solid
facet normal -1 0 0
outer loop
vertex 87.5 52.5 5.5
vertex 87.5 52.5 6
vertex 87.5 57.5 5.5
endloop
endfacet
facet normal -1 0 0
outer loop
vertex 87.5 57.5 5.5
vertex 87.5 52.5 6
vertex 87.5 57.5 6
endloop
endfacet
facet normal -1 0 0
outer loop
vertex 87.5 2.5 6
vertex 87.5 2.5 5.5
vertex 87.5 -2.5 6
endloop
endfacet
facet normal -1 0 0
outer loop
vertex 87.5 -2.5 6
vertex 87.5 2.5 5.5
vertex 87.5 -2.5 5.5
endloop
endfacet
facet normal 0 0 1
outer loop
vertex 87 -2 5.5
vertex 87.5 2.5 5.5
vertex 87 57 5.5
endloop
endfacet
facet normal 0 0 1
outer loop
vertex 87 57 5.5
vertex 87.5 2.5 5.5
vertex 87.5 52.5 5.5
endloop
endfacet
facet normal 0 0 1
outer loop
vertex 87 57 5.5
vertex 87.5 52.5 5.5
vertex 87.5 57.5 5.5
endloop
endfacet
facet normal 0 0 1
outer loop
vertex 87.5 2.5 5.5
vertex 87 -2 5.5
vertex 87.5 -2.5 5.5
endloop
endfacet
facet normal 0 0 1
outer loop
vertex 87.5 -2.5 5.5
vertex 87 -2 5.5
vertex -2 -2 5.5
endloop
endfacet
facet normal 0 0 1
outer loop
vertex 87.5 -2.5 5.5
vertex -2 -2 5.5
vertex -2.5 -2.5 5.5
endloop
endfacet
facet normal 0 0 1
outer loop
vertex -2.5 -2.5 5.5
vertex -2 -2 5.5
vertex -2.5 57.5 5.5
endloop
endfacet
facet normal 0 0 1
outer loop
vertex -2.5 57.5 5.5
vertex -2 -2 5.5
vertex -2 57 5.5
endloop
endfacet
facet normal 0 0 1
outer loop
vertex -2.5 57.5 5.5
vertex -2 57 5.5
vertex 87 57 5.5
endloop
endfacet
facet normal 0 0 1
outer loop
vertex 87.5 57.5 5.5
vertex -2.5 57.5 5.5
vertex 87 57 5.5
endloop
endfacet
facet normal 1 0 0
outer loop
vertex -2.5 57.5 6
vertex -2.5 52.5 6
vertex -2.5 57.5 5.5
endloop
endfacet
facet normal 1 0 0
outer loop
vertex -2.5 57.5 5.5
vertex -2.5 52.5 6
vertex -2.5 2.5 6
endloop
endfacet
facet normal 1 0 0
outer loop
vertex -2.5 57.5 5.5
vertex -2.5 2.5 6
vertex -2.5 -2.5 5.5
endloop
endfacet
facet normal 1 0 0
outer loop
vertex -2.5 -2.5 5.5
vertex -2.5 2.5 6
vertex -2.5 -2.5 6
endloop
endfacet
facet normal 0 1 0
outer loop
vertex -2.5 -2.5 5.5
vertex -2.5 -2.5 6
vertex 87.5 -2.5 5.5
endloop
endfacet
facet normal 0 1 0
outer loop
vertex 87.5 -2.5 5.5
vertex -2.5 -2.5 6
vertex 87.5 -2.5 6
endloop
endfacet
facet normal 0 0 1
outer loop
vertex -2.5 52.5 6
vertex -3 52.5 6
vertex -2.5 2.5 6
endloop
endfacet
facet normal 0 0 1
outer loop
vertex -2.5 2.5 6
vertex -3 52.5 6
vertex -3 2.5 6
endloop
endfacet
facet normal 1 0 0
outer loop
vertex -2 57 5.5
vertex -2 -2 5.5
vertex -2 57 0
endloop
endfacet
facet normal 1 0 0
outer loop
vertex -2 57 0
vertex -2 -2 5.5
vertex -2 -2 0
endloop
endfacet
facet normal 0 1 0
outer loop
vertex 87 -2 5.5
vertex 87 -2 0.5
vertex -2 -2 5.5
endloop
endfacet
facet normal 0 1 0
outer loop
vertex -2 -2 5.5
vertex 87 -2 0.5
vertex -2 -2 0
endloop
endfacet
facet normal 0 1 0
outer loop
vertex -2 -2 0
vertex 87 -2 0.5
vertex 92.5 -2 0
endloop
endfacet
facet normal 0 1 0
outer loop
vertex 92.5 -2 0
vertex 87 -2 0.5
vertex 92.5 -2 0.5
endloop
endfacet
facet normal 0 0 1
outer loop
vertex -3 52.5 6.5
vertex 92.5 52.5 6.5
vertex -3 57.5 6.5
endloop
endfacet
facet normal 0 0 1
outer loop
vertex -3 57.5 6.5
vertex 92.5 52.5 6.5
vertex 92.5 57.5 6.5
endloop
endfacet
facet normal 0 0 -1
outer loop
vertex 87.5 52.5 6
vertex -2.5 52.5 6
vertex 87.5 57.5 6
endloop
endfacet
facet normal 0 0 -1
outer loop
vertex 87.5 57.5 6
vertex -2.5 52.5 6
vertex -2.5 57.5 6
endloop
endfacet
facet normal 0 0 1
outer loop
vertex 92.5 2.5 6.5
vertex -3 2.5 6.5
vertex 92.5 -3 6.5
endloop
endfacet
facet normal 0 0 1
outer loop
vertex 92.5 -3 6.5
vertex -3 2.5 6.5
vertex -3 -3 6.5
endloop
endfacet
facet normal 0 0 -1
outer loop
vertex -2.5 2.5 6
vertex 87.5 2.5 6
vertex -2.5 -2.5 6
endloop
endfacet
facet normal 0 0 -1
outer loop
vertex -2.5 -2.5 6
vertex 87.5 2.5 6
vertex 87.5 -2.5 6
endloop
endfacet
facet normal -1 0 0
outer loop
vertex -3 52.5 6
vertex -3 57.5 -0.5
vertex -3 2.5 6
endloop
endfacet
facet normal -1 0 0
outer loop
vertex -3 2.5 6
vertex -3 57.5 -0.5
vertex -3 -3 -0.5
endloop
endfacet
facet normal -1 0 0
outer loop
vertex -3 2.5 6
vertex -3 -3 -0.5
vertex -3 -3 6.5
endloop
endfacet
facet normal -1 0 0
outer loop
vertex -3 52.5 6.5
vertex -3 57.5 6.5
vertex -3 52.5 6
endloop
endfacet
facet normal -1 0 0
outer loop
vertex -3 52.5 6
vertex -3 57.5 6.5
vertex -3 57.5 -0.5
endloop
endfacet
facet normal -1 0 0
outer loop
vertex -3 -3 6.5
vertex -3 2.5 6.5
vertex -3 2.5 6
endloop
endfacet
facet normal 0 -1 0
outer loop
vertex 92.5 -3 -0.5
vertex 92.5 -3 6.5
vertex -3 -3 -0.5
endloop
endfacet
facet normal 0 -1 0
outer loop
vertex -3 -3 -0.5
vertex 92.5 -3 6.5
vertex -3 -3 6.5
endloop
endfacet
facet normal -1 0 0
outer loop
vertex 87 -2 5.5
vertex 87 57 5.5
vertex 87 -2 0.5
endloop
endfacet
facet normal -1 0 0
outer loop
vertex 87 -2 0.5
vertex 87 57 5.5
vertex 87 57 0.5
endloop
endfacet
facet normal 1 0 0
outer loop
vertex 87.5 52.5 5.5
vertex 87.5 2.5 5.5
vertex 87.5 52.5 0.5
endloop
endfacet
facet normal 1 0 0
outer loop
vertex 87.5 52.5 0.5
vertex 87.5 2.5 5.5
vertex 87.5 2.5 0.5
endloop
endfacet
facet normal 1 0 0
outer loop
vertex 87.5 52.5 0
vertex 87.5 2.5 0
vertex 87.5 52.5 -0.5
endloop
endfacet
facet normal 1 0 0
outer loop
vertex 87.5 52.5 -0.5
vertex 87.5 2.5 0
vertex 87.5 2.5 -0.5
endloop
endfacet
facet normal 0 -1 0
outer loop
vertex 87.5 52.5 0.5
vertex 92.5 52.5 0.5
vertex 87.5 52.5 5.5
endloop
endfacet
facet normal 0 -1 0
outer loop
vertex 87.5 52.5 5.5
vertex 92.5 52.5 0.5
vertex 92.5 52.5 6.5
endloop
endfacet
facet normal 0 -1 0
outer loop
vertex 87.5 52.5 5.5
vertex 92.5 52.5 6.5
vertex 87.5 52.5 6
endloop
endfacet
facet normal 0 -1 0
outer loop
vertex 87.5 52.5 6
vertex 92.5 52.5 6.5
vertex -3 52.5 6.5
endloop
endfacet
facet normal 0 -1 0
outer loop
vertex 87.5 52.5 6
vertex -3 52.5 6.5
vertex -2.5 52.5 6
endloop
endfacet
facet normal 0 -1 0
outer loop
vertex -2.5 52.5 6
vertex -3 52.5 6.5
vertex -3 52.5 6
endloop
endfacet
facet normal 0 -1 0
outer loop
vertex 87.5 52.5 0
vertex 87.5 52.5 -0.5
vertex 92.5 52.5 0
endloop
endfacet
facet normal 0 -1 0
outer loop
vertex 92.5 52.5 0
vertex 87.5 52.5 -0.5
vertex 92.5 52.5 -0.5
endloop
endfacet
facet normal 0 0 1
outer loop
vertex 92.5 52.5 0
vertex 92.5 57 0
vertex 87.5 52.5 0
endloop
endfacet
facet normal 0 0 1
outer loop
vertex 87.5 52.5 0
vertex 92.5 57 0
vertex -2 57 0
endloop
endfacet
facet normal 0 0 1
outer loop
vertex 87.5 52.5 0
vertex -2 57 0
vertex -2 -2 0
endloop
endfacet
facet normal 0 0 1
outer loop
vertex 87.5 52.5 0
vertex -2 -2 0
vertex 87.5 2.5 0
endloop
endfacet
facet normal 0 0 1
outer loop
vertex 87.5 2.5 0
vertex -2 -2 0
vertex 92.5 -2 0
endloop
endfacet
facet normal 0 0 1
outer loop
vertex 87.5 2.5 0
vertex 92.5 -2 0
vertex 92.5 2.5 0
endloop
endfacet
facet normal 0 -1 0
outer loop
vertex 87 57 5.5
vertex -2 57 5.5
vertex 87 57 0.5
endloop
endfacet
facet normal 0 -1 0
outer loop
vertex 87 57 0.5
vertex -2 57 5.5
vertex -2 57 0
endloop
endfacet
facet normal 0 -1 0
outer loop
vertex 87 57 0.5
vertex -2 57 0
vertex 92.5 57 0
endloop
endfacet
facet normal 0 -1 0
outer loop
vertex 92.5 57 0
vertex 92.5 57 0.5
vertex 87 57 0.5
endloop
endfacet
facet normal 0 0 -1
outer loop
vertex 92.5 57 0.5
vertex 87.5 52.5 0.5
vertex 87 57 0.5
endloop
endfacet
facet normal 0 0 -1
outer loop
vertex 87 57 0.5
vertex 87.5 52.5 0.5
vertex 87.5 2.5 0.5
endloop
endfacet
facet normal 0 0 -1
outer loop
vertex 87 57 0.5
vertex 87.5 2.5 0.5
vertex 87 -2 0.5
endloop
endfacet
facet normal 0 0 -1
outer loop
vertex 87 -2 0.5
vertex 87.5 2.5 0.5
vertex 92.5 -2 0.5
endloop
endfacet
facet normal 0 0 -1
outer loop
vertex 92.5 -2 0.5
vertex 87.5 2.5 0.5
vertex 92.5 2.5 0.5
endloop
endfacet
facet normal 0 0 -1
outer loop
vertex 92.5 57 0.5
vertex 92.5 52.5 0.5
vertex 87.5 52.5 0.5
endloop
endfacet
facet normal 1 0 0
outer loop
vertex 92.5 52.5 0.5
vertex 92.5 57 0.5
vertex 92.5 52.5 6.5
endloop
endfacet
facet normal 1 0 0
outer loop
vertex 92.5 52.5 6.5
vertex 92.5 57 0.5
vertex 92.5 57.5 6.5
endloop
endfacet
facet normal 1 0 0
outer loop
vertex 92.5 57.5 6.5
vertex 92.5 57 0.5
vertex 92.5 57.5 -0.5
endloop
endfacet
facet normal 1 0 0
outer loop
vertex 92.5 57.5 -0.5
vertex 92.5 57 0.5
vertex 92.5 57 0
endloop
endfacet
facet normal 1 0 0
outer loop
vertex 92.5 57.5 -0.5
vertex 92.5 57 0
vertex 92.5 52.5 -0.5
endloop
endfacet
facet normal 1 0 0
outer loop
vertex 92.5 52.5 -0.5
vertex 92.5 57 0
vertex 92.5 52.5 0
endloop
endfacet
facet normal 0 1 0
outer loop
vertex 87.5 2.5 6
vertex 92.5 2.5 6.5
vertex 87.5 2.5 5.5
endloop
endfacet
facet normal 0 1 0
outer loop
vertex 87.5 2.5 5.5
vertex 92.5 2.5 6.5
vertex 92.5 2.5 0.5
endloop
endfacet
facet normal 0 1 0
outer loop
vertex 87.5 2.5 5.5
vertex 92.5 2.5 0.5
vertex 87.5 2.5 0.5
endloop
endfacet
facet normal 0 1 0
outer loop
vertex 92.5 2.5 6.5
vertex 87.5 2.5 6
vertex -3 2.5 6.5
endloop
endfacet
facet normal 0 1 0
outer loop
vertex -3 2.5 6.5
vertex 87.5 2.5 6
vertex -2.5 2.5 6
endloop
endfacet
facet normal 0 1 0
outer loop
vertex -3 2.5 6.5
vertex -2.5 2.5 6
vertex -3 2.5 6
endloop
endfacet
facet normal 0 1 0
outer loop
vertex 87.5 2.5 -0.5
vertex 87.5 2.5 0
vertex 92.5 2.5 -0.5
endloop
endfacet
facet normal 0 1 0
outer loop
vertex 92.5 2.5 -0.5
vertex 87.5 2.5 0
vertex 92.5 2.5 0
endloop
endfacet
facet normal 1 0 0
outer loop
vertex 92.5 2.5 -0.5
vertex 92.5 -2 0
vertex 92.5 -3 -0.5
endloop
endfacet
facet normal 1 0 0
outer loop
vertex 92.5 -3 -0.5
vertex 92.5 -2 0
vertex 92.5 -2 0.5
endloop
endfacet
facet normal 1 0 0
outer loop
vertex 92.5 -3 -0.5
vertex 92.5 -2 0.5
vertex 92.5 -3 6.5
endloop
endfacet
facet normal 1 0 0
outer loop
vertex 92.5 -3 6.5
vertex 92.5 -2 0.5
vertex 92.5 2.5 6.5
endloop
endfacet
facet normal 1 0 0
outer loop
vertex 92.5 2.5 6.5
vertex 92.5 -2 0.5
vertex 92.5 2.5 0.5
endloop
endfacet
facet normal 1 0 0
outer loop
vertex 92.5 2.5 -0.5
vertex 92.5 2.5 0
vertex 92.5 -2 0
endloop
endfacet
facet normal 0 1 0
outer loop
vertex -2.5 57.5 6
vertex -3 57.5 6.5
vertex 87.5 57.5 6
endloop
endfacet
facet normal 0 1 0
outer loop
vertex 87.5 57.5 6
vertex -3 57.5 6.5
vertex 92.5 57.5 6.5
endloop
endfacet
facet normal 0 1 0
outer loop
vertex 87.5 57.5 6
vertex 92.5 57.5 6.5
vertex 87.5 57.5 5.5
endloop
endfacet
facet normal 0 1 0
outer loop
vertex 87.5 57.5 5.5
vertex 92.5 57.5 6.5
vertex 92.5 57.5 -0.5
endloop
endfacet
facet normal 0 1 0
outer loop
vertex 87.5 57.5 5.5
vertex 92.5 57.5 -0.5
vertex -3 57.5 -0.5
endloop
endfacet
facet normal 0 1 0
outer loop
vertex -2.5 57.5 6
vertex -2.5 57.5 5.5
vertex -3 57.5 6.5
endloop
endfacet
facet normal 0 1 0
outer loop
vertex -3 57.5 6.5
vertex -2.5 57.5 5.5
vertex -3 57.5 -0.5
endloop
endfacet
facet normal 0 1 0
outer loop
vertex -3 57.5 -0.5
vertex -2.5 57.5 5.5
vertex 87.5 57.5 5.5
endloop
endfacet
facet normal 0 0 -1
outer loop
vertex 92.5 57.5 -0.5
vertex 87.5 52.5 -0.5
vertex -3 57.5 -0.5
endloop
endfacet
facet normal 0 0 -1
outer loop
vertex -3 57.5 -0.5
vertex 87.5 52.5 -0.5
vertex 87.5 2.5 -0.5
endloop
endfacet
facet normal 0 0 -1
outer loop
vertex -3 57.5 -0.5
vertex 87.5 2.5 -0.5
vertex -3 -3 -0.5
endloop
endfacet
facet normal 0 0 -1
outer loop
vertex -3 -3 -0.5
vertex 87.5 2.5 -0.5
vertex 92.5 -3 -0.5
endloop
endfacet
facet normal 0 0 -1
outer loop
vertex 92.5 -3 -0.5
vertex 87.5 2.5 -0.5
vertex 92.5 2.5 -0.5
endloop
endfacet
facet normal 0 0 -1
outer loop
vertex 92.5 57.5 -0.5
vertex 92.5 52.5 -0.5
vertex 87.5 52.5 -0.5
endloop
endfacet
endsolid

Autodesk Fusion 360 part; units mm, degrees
sketch "Esquisse1" plane through (0, 0, 0) normal (0, 0, 1) x (1, 0, 0)
  line L0 (0, 0) -> (85, 0)
  line L1 (85, 0) -> (85, 55)
  line L2 (85, 55) -> (0, 55)
  line L3 (0, 55) -> (0, 0)
  dimension "d1" = 85
  dimension "d2" = 55
sketch "Esquisse2" plane through (0, 0, 0) normal (0, 0, 1) x (1, 0, 0)
  line L0 (-2, -2) -> (87, -2)
  line L1 (87, -2) -> (87, 57)
  line L2 (87, 57) -> (-2, 57)
  line L3 (-2, 57) -> (-2, -2)
  line L4 (0, 0) -> (85, 0)
  line L5 (85, 55) -> (0, 55)
  line L6 (85, 0) -> (85, 55)
  line L7 (0, 55) -> (0, 0)
  line L8 (87.5, -2.5) -> (87.5, 57.5)
  line L9 (87.5, 57.5) -> (-2.5, 57.5)
  line L10 (-2.5, 57.5) -> (-2.5, -2.5)
  line L11 (-2.5, -2.5) -> (87.5, -2.5)
  dimension "d3" = 2
  dimension "d4" = 2
  dimension "d5" = 2
  dimension "d6" = 2
  dimension "d7" = 0.5
extrude "Extrusion1" add sketch "Esquisse2" along normal blind 5 contours L4 L5 L6 L7 makes body 1
extrude "Extrusion2" add sketch "Esquisse2" against normal blind 0.5 separate body contours L0 L1 L2 L3 makes body 2
extrude "Extrusion3" add sketch "Esquisse2" along normal blind 5.5 and the other way blind 0.5 contours L8 L9 L10 L11 bodies 2
extrude "Extrusion4" add 1 faces at (85, 18.3333, -0.1667) along direction (-1, 0, 0) blind 85 on bodies 2 bodies 2
sketch "Esquisse3" plane through (0, 0, 5.5) normal (0, 0, 1) x (-1, 0, 0)
  line L0 (2, 2) -> (2, -57)
  line L1 (2, -57) -> (-87, -57)
  line L2 (-87, -57) -> (-87, 2)
  line L3 (-87, 2) -> (2, 2)
  line L4 (2.5, 2.5) -> (-87.5, 2.5)
  line L5 (-87.5, 2.5) -> (-87.5, -57.5)
  line L6 (-87.5, -57.5) -> (2.5, -57.5)
  line L7 (2.5, -57.5) -> (2.5, 2.5)
  line L8 (2.5, 2.5) -> (-87.5, 2.5)
  line L9 (-87.5, 2.5) -> (-87.5, -57.5)
  line L10 (-87.5, -57.5) -> (2.5, -57.5)
  line L11 (2.5, -57.5) -> (2.5, 2.5)
  dimension "d18" = 60
  dimension "d19" = 90
extrude "Extrusion5" add sketch "Esquisse3" along normal blind 0.5 separate body contours L0 L1 L2 L3 makes body 3
extrude "Extrusion6" add 1 faces at (-2, 17.6667, 5.6667) along direction (-1, 0, 0) blind 0.5 on bodies 3 bodies 3
extrude "Extrusion7" add 1 faces at (27.3333, 57, 5.8333) along direction (0, 1, 0) blind 0.5 on bodies 3 bodies 3
extrude "Extrusion8" add 1 faces at (87, 37.6667, 5.8333) along direction (1, 0, 0) blind 0.5 on bodies 3 bodies 3
extrude "Extrusion9" add 1 faces at (27.5, -2, 5.6667) along direction (0, -1, 0) blind 0.5 on bodies 3 bodies 3
sketch "Esquisse4" plane through (87.5, 0, 0) normal (1, 0, 0) x (0, 1, 0)
  line L0 (57.5, -0.5) -> (57.5, 5.5)
  line L1 (57.5, 5.5) -> (-2.5, 5.5)
  line L2 (-2.5, 5.5) -> (-2.5, -0.5)
  line L3 (-2.5, -0.5) -> (57.5, -0.5)
  line L4 (-2, 0.5) -> (57, 0.5)
  line L5 (57, 0.5) -> (57, 0)
  line L6 (57, 0) -> (-2, 0)
  line L7 (-2, 0) -> (-2, 0.5)
  line L8 (-2.5, -0.5) -> (2.5, -0.5)
  line L9 (2.5, -0.5) -> (2.5, 4.5)
  line L10 (2.5, 4.5) -> (-2.5, 4.5)
  line L11 (-2.5, 4.5) -> (-2.5, -0.5)
  line L12 (57.5, -0.5) -> (52.5, -0.5)
  line L13 (52.5, -0.5) -> (52.5, 4.5)
  line L14 (52.5, 4.5) -> (57.5, 4.5)
  line L15 (57.5, 4.5) -> (57.5, -0.5)
  dimension "d30" = 0.5
  dimension "d31" = 0.5
  dimension "d32" = 0.5
  dimension "d33" = 0.5
  dimension "d34" = 5
  dimension "d35" = 5
  dimension "d36" = 5
  dimension "d37" = 5
extrude "Extrusion10" add sketch "Esquisse4" along normal blind 5 contours L2 L3 L4 L6 L7 L8 L9 L10 L11 bodies 2
extrude "Extrusion11" add sketch "Esquisse4" along normal blind 5 contours L0 L3 L4 L5 L6 L12 L13 L14 L15 bodies 2
extrude "Extrusion12" cut sketch "Esquisse4" against normal blind 1 contours L4 L6 L9 L13 bodies 2
extrude "Extrusion13" cut 1 faces at (87.3333, 2.5, 0.1667) along direction (0, -1, 0) blind 4.5 on bodies 2 bodies 2
extrude "Extrusion14" cut 1 faces at (87.3333, 52.5, 0.1667) along direction (0, 1, 0) blind 4.5 on bodies 2 bodies 2
extrude "Extrusion15" add 1 faces at (89.1667, 0.8333, 4.5) along direction (0, 0, 1) blind 1 on bodies 2 bodies 2
extrude "Extrusion16" add 1 faces at (89.1667, 54.1667, 4.5) along direction (0, 0, 1) blind 1 on bodies 2 bodies 2
extrude "Extrusion17" add 1 faces at (90.8333, 0.8333, 5.5) along direction (0, 0, 1) blind 0.5 on bodies 2 bodies 2
extrude "Extrusion18" add 1 faces at (60.8333, -2.5, 3.8333) along direction (0, -1, 0) blind 0.5 on bodies 2 bodies 2
extrude "Extrusion19" add 1 faces at (-2.5, 17.1667, 3.8333) along direction (-1, 0, 0) blind 0.5 on bodies 2 bodies 2
sketch "Esquisse5" plane through (0, 0, 6) normal (0, 0, 1) x (-1, 0, 0)
  line L0 (2, 2) -> (2, -57)
  line L1 (2, -57) -> (-87, -57)
  line L2 (-87, -57) -> (-87, 2)
  line L3 (-87, 2) -> (2, 2)
  line L4 (-92.5, 3) -> (-92.5, -2.5)
  line L5 (-92.5, -2.5) -> (-87.5, -2.5)
  line L6 (-87.5, -2.5) -> (-87.5, -52.5)
  line L7 (-87.5, -52.5) -> (-92.5, -52.5)
  line L8 (-92.5, -52.5) -> (-92.5, -57.5)
  line L9 (-92.5, -57.5) -> (3, -57.5)
  line L10 (3, -57.5) -> (3, 3)
  line L11 (3, 3) -> (-92.5, 3)
  line L12 (-87.5, 3) -> (3, 3)
  line L13 (3, 3) -> (3, -2.5)
  line L14 (3, -2.5) -> (-87.5, -2.5)
  line L15 (-87.5, -2.5) -> (-87.5, 3)
  line L16 (3, -57.5) -> (-87.5, -57.5)
  line L17 (-87.5, -57.5) -> (-87.5, -52.5)
  line L18 (-87.5, -52.5) -> (3, -52.5)
  line L19 (3, -52.5) -> (3, -57.5)
  dimension "d58" = 5.5
extrude "Extrusion20" add sketch "Esquisse5" along normal blind 0.5 contours L0 L2 L3 L10 L11 L12 L13 L14 L15 | L0 L2 L3 L14 bodies 2
extrude "Extrusion21" add 1 faces at (89.1667, -1.1667, 6) along direction (0, 0, 1) blind 0.5 on bodies 2 bodies 2
extrude "Extrusion22" add sketch "Esquisse5" along normal blind 0.5 contours L0 L1 L2 L9 L10 L16 L17 L18 L19 | L0 L1 L2 L18 bodies 2
extrude "Extrusion23" add sketch "Esquisse5" along normal blind 0.5 contours L7 L8 L9 L17 bodies 2
sketch "Esquisse6" plane through (0, 57.5, 0) normal (0, 1, 0) x (-1, 0, 0)
  line L0 (-92.5, 6.5) -> (-92.5, -0.5)
  line L1 (-92.5, -0.5) -> (3, -0.5)
  line L2 (3, -0.5) -> (3, 6.5)
  line L3 (3, 6.5) -> (-92.5, 6.5)
  line L4 (2.5, 6) -> (-87.5, 6)
  line L5 (-87.5, 6) -> (-87.5, 5.5)
  line L6 (-87.5, 5.5) -> (2.5, 5.5)
  line L7 (2.5, 5.5) -> (2.5, 6)
  dimension "d67" = 90
  dimension "d68" = 0.5
  dimension "d69" = 0.5
  dimension "d70" = 0.5
extrude "Extrusion24" cut sketch "Esquisse6" against normal blind 60 contours L4 L5 L6 L7 bodies 2
hidden bodies 1 3
